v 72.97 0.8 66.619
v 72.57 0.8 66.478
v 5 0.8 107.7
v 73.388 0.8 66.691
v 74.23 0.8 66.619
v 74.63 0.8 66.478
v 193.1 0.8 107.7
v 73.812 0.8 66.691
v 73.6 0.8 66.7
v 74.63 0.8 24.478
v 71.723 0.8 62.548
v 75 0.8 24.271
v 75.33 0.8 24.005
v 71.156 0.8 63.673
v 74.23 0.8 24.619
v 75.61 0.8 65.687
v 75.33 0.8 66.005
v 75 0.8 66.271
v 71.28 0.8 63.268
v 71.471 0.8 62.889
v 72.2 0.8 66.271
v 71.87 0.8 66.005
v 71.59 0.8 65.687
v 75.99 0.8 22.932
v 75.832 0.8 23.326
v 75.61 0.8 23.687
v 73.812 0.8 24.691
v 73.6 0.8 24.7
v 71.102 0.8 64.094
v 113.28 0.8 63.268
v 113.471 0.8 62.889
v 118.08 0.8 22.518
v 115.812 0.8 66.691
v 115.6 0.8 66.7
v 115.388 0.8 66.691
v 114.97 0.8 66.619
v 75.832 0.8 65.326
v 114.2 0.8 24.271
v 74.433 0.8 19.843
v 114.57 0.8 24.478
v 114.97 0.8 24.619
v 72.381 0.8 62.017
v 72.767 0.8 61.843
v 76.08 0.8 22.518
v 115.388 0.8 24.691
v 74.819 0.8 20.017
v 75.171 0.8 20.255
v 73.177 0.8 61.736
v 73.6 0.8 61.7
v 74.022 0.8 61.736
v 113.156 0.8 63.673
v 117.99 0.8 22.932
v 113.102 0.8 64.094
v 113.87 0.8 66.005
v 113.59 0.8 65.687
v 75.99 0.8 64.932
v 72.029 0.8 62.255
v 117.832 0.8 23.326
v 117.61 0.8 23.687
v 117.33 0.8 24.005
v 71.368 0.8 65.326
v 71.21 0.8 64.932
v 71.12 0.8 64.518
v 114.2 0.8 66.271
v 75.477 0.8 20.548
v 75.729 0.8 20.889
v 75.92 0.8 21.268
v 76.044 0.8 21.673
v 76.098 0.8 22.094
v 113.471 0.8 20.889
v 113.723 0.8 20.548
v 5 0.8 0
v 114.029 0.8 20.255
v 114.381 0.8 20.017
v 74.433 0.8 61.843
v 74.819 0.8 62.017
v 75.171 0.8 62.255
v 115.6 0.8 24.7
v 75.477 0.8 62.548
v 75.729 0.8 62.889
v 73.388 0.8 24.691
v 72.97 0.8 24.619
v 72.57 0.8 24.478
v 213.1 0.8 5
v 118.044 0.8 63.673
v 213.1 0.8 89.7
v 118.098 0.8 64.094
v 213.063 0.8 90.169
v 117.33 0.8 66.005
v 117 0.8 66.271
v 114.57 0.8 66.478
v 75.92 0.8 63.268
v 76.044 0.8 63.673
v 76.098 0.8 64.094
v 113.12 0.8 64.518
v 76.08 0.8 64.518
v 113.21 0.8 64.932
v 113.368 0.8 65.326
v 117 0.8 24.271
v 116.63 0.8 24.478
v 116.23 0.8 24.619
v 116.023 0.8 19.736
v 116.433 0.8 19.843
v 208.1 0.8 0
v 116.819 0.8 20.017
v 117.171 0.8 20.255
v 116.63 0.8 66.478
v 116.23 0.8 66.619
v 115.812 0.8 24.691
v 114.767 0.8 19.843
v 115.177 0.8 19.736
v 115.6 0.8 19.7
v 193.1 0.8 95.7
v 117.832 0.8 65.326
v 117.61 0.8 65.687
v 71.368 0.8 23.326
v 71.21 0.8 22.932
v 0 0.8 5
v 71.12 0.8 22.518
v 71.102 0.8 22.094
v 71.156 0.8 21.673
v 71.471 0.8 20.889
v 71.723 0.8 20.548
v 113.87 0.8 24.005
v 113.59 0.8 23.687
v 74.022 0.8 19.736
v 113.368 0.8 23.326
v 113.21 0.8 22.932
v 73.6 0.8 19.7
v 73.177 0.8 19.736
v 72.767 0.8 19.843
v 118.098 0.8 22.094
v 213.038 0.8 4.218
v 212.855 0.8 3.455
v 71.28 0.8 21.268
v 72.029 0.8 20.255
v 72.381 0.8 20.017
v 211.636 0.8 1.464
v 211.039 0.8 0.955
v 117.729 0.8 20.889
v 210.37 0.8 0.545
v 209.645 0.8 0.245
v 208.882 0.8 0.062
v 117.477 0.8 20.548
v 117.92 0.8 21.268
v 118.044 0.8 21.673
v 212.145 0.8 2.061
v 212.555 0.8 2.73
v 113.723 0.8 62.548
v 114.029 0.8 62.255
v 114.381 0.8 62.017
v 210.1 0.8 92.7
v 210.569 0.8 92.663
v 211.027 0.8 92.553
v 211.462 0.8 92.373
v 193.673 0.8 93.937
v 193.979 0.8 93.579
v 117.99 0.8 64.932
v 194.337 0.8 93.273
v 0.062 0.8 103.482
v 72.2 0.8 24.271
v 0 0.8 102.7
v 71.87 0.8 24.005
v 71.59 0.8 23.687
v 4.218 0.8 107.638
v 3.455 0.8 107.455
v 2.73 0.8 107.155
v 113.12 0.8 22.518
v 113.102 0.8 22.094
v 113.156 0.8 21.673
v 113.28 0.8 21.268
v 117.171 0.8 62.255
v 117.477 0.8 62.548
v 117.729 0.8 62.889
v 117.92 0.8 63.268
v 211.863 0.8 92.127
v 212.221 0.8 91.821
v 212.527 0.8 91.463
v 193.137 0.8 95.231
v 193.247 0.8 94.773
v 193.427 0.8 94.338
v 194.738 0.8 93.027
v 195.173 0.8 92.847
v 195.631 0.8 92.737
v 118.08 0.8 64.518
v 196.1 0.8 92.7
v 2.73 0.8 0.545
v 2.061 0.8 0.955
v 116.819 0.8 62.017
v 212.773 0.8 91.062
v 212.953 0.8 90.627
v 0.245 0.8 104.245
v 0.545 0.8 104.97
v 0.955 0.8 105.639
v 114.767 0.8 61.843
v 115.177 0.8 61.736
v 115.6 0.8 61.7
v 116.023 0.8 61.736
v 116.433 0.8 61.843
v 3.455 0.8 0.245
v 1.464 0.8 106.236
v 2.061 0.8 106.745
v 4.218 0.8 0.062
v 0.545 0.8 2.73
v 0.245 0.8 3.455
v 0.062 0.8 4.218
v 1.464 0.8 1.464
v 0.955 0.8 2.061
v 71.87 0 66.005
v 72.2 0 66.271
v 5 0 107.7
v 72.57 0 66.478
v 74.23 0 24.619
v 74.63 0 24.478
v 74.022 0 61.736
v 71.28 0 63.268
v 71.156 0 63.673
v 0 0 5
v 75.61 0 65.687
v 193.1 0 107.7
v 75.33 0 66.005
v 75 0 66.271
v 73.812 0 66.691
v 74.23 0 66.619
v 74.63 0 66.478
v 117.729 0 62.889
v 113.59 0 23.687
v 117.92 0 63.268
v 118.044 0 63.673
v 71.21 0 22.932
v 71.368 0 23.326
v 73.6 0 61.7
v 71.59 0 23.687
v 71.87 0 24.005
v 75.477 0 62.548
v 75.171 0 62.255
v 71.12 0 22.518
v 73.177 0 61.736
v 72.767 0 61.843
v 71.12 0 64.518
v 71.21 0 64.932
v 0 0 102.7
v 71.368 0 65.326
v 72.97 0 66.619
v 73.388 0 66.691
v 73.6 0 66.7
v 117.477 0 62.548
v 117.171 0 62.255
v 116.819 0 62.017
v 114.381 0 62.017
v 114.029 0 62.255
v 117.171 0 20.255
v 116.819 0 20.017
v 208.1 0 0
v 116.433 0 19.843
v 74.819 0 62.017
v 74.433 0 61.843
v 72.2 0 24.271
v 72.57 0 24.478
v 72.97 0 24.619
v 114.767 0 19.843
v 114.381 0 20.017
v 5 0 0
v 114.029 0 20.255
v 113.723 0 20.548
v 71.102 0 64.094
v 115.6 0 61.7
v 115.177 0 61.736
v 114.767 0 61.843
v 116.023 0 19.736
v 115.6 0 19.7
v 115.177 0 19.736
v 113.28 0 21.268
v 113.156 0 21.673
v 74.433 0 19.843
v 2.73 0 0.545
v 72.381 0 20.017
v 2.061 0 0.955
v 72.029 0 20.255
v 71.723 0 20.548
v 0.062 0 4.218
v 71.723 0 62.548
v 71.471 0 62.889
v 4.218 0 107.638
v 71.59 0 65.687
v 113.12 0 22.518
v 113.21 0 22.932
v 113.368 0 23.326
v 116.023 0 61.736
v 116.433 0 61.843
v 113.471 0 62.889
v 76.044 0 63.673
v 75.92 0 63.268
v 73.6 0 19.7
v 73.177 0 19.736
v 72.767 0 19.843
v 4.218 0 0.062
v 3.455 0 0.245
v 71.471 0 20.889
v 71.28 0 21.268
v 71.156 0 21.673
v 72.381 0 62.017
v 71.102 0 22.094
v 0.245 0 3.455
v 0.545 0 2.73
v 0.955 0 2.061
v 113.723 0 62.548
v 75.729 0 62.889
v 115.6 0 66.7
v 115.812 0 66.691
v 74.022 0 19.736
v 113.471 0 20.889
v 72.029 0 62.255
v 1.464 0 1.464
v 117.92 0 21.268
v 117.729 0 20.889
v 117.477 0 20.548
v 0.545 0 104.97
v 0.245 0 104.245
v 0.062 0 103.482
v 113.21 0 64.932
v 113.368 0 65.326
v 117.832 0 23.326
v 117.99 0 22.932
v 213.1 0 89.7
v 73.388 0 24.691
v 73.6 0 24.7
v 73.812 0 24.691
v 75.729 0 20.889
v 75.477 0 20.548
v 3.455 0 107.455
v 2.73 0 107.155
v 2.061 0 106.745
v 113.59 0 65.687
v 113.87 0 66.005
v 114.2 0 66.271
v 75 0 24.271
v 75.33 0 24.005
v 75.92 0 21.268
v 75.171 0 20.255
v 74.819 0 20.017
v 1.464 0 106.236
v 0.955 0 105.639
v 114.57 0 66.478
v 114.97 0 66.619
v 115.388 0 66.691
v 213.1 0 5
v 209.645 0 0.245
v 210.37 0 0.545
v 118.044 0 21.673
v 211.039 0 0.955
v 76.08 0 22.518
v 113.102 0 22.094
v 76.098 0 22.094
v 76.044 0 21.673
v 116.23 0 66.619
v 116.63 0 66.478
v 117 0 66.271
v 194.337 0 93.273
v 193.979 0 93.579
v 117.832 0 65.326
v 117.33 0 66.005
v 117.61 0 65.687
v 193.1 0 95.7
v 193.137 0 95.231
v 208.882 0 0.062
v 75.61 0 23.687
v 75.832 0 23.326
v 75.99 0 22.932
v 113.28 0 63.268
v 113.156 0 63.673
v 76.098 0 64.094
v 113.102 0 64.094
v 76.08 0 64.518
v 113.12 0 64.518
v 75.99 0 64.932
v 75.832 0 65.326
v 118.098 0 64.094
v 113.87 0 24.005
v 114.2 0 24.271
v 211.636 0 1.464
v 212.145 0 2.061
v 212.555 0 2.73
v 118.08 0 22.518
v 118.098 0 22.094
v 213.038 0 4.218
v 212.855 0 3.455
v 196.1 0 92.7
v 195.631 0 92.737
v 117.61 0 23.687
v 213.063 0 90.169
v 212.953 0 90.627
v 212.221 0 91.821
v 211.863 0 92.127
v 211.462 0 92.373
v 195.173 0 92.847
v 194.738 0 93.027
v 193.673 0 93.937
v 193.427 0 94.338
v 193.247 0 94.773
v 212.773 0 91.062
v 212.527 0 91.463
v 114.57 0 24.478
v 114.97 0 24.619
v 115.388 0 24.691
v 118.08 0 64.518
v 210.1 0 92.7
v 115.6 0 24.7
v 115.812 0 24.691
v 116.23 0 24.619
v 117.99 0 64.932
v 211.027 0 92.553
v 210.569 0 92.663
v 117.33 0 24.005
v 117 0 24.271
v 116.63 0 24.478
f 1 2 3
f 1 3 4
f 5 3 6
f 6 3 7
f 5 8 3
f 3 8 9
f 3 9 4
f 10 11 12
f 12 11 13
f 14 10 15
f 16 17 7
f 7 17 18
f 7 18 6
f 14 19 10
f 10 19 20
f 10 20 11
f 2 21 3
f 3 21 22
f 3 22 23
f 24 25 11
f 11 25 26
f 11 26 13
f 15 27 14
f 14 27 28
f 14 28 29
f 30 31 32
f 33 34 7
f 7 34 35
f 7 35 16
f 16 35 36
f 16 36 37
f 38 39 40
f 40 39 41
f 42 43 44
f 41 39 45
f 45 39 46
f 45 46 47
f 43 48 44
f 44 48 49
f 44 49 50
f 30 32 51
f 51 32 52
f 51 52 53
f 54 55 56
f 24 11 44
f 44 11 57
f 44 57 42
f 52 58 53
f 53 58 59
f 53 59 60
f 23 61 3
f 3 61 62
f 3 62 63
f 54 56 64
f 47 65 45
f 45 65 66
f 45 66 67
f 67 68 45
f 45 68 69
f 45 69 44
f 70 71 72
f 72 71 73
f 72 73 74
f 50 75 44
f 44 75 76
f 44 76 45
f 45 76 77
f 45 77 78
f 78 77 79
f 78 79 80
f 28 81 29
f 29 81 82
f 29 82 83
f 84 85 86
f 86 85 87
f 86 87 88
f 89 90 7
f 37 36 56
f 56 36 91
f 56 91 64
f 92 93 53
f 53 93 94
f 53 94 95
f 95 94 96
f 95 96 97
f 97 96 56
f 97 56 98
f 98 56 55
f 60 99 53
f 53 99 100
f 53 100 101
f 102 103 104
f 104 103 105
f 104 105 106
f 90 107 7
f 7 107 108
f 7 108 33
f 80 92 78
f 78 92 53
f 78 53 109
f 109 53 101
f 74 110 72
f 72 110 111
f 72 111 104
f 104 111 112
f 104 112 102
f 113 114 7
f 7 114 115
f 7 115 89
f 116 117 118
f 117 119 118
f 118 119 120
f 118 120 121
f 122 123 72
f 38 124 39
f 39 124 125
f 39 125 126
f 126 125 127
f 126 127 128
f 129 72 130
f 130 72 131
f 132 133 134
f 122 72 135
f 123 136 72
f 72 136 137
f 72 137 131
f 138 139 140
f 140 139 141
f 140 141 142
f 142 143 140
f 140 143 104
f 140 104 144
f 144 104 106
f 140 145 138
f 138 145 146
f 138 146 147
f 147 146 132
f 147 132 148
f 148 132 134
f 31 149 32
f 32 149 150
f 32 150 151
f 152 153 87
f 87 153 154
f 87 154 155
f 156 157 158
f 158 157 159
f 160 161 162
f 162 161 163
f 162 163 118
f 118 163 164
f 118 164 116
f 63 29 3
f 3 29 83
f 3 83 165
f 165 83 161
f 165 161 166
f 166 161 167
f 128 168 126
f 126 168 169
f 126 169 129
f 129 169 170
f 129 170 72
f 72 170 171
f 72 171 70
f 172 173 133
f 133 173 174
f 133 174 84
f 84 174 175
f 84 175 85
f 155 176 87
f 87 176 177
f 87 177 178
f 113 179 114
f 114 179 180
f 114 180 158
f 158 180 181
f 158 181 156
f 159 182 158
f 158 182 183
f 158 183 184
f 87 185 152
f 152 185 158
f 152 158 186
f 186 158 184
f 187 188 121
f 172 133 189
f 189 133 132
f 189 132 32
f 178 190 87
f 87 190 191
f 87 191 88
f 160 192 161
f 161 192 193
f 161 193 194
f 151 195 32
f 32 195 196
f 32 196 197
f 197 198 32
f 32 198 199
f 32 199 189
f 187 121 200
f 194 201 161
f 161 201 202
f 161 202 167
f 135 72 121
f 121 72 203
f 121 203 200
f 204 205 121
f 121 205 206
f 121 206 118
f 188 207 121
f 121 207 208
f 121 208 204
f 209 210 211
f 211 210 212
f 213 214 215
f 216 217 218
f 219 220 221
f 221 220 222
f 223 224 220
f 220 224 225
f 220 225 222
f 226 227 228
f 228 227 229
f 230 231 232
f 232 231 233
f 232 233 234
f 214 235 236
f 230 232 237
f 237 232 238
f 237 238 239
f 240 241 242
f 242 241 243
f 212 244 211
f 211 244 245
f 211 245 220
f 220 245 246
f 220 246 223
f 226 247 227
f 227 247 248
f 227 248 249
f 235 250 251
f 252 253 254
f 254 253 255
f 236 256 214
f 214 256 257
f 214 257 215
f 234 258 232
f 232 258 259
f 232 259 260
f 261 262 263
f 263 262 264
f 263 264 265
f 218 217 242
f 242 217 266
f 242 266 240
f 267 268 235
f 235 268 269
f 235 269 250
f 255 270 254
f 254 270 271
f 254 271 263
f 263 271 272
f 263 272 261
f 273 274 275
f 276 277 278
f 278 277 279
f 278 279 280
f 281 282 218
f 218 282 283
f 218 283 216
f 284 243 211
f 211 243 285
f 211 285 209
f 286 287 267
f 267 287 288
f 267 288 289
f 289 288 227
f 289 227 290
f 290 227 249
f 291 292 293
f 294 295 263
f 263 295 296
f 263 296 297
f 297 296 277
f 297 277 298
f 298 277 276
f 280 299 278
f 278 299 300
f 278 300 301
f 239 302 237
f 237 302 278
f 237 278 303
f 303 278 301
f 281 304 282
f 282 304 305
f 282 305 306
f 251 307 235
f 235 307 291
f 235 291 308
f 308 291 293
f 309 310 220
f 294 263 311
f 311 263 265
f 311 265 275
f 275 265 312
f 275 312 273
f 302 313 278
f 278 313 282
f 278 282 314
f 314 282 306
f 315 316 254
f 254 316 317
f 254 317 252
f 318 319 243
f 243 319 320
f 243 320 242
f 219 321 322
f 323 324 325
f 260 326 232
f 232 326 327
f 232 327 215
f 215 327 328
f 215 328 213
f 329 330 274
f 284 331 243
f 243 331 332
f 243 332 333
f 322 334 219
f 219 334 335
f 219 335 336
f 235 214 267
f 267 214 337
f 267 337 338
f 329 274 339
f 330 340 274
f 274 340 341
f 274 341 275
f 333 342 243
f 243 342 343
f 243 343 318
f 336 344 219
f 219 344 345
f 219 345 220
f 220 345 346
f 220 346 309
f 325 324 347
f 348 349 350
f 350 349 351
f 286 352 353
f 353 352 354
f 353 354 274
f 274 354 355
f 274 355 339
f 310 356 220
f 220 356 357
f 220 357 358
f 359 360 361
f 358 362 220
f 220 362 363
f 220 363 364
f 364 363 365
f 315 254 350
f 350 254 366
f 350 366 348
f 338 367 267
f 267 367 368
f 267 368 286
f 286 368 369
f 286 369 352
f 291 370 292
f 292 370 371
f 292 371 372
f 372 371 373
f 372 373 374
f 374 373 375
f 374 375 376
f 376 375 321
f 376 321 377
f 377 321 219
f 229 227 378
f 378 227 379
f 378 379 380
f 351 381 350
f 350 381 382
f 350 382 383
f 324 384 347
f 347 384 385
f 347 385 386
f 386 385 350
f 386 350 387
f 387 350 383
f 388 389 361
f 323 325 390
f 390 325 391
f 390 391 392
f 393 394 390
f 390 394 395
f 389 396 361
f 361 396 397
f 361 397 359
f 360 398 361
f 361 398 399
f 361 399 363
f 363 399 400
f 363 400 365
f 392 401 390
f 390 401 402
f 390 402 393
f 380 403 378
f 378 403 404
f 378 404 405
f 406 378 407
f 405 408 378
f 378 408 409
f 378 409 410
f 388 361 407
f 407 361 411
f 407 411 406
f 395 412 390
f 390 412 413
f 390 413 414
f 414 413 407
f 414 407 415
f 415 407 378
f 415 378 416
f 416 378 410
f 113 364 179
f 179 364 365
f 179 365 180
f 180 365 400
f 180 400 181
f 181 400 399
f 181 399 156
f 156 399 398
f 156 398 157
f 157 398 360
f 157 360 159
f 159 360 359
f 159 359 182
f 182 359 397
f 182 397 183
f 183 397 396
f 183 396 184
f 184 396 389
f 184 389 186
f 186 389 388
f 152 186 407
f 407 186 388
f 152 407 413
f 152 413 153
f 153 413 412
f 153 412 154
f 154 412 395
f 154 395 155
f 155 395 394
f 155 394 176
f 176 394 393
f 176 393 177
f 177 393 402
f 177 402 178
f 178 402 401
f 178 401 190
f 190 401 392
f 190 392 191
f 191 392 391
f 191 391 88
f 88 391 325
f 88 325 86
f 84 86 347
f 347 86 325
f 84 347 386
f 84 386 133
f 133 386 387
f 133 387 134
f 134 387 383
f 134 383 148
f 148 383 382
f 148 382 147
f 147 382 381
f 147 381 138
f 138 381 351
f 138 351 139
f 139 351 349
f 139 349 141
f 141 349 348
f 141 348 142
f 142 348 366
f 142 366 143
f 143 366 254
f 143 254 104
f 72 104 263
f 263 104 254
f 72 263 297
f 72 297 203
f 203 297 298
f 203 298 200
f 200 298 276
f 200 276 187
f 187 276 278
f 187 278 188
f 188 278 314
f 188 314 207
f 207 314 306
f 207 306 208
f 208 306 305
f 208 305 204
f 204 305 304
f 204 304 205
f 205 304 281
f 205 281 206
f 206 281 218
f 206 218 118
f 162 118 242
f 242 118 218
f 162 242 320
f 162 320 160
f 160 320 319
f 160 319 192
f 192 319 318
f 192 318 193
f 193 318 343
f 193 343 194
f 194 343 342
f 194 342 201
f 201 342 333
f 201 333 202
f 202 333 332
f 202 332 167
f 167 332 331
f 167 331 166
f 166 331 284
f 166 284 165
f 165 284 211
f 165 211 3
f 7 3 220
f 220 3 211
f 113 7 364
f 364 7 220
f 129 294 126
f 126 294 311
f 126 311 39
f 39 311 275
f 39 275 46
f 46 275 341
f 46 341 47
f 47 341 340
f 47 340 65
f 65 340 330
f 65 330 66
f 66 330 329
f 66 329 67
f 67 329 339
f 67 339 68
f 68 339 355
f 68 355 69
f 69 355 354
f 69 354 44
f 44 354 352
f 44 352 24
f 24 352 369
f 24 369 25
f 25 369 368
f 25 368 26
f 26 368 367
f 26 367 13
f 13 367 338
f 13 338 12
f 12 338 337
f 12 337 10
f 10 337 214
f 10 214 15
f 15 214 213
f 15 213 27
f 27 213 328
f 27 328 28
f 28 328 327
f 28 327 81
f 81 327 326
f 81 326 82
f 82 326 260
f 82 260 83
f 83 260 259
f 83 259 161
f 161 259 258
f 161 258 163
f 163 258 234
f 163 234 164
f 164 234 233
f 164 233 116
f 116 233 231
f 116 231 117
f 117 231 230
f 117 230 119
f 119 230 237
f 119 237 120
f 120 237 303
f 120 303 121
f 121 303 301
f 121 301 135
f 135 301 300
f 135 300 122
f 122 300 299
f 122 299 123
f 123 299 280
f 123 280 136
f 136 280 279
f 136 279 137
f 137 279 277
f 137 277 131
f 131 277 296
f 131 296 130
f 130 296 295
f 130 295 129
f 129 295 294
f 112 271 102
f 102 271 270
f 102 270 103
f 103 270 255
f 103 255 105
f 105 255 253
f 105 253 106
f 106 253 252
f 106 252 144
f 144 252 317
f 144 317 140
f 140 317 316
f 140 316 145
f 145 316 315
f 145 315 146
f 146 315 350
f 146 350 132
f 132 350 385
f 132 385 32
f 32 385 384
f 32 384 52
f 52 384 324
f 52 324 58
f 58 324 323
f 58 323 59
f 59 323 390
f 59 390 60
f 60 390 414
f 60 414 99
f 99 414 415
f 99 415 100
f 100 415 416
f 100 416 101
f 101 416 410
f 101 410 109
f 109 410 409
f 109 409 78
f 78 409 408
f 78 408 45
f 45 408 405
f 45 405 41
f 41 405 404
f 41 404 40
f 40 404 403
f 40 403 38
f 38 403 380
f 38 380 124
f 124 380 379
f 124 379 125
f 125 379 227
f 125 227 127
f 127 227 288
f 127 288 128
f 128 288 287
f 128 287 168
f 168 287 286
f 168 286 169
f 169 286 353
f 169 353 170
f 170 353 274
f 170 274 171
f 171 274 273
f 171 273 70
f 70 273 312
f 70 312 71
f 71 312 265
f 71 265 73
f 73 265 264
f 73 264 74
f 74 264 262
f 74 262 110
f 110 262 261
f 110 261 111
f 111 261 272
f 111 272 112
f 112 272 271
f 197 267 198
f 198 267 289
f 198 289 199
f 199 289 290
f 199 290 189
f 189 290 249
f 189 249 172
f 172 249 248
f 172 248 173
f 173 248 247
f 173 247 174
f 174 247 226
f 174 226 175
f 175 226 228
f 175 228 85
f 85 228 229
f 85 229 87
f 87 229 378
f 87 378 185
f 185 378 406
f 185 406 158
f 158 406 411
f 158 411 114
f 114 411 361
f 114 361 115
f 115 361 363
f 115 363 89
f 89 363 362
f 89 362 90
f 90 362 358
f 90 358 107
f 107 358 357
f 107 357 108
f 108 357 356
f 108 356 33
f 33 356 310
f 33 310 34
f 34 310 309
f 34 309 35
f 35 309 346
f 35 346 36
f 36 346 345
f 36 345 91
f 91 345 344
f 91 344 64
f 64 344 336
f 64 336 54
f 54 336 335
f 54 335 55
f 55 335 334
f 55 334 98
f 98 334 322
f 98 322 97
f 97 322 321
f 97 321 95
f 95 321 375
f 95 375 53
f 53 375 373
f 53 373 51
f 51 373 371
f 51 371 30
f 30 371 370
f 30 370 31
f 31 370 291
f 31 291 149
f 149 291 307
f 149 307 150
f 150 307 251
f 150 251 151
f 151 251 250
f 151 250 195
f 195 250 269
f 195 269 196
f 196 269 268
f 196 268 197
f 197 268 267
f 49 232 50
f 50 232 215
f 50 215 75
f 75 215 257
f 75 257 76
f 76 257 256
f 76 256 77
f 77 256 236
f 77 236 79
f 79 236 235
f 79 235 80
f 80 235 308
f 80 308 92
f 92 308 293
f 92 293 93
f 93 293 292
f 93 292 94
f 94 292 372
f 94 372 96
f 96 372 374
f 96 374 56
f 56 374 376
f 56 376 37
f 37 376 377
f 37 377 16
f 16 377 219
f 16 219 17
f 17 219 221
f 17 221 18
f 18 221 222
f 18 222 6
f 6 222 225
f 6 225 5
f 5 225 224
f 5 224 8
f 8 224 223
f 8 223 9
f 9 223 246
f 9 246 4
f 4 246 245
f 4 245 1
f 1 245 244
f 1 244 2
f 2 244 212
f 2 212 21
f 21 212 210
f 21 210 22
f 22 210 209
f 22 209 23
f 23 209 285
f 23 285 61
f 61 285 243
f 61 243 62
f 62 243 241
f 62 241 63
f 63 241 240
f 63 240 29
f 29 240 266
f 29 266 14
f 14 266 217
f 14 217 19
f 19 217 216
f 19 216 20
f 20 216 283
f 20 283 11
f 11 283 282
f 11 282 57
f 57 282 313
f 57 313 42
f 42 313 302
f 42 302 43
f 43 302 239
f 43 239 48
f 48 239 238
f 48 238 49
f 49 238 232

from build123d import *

# Parameters (mm, degrees)
SKETCH1_R           = 2.5
BOSS_EXTRUDE1_DEPTH = 0.8


with BuildPart() as part:
    # Sketch1 → Boss-Extrude1 (new body)
    with BuildSketch(Plane(origin=(0, 0, 0), x_dir=(1, 0, 0), z_dir=(0, 1, 0))):
        with BuildLine():
            Line((5, 0), (208.1, 0))
            ThreePointArc((208.1, 0), (211.635533906, -1.464466094), (213.1, -5))
            Line((213.1, -5), (213.1, -82.7))
            Line((213.1, -82.7), (213.1, -87.7))
            Line((213.1, -87.7), (213.1, -89.7))
            ThreePointArc((213.1, -89.7), (212.221320344, -91.821320344), (210.1, -92.7))
            Line((210.1, -92.7), (196.1, -92.7))
            ThreePointArc((196.1, -92.7), (193.978679656, -93.578679656), (193.1, -95.7))
            Line((193.1, -95.7), (193.1, -102.7))
            Line((193.1, -102.7), (193.1, -107.7))
            Line((193.1, -107.7), (188.1, -107.7))
            Line((188.1, -107.7), (5, -107.7))
            ThreePointArc((5, -107.7), (1.464466094, -106.235533906), (0, -102.7))
            Line((0, -102.7), (0, -5))
            ThreePointArc((0, -5), (1.464466094, -1.464466094), (5, 0))
        make_face()
        with Locations((73.6, -22.2)):
            Circle(SKETCH1_R, mode=Mode.SUBTRACT)
        with Locations((115.6, -22.2)):
            Circle(SKETCH1_R, mode=Mode.SUBTRACT)
        with Locations((115.6, -64.2)):
            Circle(SKETCH1_R, mode=Mode.SUBTRACT)
        with Locations((73.6, -64.2)):
            Circle(SKETCH1_R, mode=Mode.SUBTRACT)
    extrude(amount=BOSS_EXTRUDE1_DEPTH)


solid = part.part
